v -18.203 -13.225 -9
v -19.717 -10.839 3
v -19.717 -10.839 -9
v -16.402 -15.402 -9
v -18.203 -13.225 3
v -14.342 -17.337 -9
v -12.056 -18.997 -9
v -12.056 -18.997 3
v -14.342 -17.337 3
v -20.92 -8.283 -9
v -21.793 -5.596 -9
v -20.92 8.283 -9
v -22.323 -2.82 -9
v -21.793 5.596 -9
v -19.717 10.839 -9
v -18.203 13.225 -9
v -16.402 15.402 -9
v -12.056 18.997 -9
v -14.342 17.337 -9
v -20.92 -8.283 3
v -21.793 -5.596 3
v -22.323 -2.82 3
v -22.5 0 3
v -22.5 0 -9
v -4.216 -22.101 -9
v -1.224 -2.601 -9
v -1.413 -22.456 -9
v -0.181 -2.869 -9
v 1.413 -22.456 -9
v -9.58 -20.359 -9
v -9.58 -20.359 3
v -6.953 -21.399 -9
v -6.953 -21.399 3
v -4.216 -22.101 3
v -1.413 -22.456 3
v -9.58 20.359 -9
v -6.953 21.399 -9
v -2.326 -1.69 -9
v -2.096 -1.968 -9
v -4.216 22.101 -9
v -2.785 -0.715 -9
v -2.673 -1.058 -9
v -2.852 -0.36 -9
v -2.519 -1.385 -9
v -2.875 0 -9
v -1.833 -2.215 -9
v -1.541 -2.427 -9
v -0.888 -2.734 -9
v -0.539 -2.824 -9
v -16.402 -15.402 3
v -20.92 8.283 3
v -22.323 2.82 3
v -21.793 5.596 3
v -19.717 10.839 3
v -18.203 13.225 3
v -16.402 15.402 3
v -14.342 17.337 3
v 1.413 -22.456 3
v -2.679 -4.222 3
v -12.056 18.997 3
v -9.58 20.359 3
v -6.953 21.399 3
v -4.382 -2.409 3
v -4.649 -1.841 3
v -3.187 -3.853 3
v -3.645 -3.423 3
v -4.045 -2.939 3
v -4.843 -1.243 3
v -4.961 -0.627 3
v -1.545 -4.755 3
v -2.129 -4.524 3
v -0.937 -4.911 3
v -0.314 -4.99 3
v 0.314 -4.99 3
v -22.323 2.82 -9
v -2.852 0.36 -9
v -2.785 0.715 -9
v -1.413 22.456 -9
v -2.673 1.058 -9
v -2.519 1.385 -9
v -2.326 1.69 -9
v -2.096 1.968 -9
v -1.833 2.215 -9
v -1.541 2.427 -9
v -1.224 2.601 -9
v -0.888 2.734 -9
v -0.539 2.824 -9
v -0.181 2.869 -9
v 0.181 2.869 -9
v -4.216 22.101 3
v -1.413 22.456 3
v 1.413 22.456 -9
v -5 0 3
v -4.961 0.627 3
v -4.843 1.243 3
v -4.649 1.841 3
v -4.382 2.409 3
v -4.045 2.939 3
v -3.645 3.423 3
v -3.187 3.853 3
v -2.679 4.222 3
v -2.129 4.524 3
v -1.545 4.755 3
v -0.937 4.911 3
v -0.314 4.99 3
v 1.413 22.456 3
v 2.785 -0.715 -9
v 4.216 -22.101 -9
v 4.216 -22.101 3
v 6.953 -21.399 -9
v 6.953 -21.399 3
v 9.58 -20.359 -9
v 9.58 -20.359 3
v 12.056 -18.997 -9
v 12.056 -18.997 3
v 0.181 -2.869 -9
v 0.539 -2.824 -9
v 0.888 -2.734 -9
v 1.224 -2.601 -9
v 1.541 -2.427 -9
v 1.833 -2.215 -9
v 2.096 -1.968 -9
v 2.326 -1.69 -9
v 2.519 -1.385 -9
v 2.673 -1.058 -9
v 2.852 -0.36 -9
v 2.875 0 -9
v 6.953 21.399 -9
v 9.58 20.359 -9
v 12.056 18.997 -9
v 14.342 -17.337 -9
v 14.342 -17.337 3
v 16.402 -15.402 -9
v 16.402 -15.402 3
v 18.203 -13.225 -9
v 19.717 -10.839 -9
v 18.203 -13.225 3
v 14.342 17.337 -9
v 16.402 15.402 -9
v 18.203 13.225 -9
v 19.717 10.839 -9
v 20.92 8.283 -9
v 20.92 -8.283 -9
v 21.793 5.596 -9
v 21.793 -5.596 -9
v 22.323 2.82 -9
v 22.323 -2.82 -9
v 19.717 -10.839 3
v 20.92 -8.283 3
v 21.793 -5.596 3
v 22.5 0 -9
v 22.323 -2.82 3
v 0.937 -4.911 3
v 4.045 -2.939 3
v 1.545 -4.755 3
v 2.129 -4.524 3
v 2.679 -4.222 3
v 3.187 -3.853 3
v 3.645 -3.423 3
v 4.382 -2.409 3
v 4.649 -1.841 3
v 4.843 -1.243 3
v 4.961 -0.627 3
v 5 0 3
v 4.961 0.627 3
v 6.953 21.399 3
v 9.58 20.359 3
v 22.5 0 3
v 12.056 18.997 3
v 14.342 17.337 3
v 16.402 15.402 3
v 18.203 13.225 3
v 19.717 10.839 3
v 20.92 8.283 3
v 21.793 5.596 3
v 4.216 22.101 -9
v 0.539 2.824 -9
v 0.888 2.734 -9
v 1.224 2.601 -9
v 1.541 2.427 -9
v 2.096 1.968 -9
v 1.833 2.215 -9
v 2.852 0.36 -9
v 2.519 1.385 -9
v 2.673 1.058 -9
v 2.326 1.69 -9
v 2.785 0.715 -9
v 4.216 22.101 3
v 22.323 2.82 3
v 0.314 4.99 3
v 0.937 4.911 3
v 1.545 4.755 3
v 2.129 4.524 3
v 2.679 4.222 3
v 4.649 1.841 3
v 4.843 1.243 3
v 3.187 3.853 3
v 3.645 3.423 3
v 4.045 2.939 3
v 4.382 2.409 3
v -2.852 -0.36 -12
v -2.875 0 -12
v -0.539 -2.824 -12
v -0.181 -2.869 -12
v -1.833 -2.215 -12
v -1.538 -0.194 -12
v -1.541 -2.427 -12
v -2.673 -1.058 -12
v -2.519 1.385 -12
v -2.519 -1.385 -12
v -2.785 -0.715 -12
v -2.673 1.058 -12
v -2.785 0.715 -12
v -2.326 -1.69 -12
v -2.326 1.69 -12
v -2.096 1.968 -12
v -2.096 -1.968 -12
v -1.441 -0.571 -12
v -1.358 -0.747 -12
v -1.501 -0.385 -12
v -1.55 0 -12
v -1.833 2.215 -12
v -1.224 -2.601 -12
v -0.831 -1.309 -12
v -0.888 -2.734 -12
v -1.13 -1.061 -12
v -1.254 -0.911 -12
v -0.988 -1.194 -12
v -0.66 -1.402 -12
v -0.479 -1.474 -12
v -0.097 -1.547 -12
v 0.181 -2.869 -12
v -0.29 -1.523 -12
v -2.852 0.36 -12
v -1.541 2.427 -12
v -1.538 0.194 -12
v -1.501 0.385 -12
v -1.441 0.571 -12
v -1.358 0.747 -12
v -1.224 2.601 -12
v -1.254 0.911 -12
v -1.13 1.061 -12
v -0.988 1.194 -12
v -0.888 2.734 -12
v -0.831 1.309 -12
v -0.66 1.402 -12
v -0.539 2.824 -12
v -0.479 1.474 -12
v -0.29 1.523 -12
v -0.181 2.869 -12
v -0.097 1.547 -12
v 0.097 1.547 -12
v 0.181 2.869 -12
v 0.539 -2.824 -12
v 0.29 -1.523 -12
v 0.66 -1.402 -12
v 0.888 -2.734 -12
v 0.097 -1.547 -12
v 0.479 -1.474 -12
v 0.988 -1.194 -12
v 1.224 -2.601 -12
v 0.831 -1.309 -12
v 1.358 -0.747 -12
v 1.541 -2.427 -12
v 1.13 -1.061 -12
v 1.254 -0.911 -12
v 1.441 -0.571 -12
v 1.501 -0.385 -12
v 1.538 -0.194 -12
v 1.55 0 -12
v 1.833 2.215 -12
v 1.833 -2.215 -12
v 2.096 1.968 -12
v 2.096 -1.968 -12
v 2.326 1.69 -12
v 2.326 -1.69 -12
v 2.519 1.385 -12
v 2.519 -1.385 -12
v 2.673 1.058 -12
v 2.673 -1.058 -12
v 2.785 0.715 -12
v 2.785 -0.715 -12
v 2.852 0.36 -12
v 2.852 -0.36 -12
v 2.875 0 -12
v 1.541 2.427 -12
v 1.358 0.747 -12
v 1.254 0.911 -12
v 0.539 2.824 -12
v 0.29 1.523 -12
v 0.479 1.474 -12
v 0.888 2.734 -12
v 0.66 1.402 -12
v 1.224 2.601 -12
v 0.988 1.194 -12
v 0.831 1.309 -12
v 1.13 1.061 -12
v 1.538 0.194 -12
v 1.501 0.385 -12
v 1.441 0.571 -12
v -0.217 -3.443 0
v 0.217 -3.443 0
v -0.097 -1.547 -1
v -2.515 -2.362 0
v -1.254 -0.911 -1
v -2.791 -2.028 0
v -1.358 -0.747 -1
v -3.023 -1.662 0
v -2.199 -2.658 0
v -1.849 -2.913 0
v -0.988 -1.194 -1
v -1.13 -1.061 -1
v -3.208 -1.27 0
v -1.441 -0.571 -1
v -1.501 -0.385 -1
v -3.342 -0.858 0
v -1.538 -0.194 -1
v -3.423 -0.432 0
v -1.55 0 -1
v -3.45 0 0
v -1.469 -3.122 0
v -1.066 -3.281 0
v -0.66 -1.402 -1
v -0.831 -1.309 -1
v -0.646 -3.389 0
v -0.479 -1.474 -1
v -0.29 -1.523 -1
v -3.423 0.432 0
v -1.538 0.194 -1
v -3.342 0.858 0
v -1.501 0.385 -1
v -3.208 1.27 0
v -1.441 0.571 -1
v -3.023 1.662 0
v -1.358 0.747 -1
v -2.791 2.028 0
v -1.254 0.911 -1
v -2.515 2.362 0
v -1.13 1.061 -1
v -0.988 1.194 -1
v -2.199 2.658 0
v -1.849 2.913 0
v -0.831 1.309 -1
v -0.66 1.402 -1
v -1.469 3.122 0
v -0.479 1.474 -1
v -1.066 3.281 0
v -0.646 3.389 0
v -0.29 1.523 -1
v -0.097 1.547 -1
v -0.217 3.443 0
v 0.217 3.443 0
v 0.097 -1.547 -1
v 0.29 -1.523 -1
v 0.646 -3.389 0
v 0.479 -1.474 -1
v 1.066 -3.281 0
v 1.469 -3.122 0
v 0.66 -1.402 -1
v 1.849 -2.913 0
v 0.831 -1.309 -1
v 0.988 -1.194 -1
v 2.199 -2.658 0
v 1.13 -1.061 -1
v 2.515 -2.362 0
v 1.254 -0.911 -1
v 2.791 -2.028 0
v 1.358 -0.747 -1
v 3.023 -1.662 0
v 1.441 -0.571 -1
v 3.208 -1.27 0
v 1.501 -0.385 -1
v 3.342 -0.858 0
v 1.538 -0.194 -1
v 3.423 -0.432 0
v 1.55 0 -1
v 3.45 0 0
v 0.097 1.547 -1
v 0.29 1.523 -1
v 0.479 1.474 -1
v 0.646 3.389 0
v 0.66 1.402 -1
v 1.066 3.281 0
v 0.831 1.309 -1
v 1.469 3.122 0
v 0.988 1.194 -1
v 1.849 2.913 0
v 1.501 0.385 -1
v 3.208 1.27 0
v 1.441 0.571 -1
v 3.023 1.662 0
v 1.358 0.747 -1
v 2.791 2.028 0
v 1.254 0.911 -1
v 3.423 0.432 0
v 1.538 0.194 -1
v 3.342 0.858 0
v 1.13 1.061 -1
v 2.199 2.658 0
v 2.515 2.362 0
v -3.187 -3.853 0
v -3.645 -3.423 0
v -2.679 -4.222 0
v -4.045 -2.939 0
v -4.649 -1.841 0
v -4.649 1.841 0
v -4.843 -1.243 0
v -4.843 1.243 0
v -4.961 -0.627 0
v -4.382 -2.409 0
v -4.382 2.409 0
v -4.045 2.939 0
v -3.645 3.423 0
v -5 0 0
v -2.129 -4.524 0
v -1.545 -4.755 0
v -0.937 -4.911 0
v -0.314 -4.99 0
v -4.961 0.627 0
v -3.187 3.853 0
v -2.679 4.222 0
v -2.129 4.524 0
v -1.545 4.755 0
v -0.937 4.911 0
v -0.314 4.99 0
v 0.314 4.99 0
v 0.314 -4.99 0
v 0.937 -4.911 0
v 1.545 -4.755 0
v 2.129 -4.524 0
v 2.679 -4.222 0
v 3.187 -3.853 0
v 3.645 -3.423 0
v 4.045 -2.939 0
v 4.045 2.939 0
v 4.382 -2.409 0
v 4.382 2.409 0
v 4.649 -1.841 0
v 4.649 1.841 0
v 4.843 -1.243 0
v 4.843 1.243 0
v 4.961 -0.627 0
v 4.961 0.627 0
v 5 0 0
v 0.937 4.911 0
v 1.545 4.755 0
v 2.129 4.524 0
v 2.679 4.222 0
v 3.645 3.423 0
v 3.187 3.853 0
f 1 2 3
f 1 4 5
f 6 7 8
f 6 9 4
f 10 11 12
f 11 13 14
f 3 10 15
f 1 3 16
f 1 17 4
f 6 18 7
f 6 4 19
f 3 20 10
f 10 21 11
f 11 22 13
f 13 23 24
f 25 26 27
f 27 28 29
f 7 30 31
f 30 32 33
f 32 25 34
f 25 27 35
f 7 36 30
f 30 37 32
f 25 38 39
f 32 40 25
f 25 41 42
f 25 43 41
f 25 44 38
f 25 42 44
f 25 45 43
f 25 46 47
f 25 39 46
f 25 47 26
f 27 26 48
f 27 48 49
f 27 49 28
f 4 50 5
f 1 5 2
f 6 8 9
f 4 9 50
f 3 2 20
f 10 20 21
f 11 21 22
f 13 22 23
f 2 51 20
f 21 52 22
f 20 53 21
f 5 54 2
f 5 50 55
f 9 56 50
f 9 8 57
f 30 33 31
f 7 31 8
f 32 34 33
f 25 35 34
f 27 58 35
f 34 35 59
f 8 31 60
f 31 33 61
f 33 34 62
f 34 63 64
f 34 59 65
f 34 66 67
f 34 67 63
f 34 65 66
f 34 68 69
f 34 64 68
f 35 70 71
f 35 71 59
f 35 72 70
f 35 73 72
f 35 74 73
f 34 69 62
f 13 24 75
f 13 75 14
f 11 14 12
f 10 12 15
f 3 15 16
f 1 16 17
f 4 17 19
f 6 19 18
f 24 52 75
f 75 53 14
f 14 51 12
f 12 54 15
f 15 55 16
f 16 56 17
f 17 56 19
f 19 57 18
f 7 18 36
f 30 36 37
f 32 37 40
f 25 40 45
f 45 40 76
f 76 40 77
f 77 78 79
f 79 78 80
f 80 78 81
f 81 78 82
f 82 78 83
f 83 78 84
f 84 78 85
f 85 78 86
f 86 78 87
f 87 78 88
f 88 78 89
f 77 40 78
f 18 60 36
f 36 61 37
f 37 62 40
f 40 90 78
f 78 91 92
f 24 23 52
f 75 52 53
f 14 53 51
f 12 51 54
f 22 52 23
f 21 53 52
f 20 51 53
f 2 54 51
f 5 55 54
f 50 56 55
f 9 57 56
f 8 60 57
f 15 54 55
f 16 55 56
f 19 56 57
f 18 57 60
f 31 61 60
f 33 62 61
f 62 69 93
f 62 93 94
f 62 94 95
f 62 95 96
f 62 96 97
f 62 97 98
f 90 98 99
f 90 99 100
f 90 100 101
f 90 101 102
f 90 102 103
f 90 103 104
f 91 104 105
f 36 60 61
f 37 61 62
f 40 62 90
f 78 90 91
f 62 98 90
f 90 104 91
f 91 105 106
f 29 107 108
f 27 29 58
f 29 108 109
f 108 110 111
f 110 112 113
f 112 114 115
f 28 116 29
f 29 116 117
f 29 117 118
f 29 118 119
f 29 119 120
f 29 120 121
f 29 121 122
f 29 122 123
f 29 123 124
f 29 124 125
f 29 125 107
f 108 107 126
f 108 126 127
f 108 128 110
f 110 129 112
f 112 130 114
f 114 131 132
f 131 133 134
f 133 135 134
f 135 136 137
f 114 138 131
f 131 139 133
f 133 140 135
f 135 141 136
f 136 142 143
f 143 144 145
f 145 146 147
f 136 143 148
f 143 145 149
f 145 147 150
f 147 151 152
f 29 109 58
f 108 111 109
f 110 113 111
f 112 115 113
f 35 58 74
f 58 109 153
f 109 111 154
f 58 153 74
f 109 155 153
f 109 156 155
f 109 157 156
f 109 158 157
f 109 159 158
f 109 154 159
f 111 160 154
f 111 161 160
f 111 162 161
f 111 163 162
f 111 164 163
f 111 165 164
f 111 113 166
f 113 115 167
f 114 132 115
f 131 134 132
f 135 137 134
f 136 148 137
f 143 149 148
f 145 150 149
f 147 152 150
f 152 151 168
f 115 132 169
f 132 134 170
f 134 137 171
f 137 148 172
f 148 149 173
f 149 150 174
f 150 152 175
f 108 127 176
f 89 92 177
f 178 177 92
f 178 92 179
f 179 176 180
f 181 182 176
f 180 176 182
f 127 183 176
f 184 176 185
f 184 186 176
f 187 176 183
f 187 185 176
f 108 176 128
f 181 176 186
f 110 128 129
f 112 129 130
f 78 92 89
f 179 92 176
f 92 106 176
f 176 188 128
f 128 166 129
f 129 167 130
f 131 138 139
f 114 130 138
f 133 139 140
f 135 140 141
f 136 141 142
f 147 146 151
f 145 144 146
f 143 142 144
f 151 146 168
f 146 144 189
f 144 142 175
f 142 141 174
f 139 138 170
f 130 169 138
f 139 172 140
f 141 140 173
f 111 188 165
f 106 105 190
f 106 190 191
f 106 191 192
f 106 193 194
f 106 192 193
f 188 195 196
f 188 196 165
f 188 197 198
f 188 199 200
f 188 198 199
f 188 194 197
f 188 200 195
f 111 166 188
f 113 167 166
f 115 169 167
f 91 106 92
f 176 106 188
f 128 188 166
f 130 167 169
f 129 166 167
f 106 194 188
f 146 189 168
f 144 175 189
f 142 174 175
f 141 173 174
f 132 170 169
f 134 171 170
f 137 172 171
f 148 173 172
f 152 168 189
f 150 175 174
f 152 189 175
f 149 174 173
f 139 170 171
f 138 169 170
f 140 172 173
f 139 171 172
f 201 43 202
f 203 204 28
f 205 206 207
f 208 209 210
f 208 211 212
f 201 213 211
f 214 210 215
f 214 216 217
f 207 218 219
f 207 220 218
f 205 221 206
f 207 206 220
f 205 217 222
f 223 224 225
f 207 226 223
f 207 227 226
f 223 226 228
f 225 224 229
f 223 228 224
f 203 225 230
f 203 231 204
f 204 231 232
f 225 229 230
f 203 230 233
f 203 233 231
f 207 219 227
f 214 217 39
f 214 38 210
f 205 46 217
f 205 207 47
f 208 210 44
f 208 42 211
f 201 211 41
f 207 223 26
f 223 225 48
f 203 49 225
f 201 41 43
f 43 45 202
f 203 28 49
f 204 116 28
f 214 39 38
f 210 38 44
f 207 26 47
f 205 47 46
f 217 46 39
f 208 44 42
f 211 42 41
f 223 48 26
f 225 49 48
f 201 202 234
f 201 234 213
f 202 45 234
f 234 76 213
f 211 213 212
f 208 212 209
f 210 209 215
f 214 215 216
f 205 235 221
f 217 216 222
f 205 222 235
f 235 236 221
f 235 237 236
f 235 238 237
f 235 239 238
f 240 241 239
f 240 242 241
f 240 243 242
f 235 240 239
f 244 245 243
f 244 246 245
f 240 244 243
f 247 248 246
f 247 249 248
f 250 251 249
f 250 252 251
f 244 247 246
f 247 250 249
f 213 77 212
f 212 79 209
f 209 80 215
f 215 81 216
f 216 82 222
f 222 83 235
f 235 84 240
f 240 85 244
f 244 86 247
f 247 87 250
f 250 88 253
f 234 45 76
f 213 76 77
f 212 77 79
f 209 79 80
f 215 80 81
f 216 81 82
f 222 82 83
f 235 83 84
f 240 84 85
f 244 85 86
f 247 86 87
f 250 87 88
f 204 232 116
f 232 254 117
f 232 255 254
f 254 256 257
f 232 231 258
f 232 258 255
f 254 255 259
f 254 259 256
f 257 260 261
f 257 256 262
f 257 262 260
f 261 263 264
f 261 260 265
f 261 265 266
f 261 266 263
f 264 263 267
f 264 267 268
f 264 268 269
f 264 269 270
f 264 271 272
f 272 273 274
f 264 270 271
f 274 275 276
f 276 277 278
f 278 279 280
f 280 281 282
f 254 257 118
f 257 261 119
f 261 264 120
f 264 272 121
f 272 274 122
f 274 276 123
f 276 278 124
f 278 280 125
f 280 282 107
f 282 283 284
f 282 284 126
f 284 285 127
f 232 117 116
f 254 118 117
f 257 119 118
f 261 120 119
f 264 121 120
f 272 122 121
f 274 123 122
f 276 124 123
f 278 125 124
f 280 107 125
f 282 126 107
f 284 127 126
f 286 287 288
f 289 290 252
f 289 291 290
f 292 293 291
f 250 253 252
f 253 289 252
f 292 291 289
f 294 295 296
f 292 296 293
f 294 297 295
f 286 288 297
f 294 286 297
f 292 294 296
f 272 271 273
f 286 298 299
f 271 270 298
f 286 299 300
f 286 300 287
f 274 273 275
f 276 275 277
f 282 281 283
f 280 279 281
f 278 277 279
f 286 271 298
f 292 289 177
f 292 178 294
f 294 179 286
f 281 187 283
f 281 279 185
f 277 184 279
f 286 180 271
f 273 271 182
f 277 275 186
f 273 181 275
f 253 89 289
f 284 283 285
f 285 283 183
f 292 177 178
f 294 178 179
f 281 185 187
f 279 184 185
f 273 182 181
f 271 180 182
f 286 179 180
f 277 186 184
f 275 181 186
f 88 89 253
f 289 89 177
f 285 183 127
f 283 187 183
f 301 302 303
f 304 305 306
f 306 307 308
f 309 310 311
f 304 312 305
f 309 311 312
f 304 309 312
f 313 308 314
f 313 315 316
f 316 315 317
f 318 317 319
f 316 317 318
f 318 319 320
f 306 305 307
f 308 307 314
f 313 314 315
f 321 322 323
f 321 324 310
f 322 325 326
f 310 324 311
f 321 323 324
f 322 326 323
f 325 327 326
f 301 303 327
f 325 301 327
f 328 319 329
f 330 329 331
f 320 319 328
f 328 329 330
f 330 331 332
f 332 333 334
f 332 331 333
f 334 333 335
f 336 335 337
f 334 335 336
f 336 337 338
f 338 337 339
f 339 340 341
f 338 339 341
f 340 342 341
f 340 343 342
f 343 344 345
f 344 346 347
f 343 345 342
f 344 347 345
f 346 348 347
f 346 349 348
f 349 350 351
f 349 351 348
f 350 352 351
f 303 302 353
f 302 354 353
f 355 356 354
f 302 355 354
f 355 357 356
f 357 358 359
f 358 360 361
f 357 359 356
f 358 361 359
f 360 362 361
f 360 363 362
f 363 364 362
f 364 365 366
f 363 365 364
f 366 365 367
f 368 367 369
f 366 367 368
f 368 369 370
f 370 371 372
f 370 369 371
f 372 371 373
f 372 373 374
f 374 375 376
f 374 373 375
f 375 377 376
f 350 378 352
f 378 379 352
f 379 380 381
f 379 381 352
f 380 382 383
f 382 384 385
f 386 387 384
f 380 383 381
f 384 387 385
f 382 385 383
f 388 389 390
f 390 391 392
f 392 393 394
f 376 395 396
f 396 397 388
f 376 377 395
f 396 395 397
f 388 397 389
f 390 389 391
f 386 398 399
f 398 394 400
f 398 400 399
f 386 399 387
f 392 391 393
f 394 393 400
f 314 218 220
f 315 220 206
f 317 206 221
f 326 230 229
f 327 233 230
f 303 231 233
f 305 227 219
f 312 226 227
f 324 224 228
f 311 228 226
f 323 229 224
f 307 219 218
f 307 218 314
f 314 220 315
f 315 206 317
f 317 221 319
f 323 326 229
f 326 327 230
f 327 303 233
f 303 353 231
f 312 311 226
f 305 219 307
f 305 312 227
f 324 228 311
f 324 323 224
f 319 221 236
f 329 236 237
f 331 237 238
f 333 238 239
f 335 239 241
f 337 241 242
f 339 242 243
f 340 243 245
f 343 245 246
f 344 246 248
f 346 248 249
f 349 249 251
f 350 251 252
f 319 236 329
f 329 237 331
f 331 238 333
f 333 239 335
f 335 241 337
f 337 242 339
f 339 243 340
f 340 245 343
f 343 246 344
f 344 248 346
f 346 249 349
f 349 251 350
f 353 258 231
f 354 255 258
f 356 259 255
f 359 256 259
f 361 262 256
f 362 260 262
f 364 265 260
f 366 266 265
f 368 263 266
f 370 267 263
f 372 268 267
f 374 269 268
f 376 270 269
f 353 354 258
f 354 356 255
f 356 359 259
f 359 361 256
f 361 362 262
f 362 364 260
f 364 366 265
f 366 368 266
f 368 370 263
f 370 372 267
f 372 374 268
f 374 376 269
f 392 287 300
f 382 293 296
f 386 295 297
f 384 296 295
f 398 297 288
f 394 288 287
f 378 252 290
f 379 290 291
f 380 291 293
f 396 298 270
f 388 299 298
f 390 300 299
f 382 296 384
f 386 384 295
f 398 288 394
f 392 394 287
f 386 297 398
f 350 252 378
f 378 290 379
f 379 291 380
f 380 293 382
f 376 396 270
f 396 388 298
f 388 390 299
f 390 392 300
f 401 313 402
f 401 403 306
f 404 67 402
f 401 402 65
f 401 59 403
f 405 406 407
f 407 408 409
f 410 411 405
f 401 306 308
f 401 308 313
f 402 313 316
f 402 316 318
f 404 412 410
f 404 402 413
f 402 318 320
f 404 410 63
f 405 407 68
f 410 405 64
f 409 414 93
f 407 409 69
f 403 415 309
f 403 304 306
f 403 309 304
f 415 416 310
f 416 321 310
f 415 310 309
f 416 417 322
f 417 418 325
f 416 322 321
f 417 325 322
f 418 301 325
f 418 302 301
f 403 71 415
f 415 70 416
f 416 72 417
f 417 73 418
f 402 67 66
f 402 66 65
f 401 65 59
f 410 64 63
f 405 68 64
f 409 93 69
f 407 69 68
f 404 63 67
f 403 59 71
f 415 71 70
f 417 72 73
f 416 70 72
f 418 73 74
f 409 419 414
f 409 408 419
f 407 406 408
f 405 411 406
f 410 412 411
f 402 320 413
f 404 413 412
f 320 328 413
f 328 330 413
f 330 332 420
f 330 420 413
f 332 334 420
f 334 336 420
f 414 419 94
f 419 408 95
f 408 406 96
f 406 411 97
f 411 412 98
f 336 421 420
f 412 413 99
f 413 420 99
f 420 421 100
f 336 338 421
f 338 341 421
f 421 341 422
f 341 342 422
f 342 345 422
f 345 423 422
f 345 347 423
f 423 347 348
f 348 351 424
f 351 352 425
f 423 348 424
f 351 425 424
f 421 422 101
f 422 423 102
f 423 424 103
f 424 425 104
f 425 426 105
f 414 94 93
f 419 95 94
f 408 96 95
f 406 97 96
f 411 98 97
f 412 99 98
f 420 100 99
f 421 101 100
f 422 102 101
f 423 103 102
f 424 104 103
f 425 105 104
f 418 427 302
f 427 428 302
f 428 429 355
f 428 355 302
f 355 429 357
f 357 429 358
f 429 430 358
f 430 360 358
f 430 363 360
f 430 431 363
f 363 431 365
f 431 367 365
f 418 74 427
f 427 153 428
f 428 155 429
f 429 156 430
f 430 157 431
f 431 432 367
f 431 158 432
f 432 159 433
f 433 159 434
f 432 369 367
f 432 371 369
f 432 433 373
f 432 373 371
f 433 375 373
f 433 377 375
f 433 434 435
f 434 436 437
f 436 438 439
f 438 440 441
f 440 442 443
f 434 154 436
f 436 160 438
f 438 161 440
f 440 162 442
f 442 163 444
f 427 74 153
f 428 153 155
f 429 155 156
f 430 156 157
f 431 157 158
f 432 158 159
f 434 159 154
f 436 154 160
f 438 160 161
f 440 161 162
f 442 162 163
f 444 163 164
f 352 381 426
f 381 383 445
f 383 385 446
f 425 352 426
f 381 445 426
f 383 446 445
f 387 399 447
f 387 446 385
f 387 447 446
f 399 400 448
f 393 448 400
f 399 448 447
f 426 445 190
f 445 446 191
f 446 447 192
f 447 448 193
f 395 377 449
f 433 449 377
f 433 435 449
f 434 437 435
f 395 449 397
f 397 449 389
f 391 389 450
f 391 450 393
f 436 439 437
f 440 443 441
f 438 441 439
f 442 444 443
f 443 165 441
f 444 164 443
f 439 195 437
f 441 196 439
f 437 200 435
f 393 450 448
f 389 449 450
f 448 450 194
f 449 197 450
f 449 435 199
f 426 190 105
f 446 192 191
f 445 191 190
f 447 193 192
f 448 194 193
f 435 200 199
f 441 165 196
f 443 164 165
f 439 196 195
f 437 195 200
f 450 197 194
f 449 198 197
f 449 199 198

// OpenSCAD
$fn = 50;

difference() {
	union() {
		translate(v = [0, 0, -9.0]) {
			cylinder(h = 12, r = 22.5);
		}
		#translate(v = [0, 0, -12.0]) {
			cylinder(h = 12, r = 2.875);
		}
	}
	union() {
		translate(v = [0, 0, 0]) {
			rotate(a = [0, 0, 0]) {
				difference() {
					union() {
						translate(v = [0, 0, -12.0]) {
							cylinder(h = 12, r = 1.25);
						}
						translate(v = [0, 0, -1.0]) {
							cylinder(h = 1.0, r1 = 1.55, r2 = 3.45);
						}
						translate(v = [0, 0, -12.0]) {
							cylinder(h = 12, r = 1.55);
						}
						translate(v = [0, 0, -12.0]) {
							cylinder(h = 12, r = 1.25);
						}
					}
					union();
				}
			}
		}
		#cylinder(h = 3, r = 5.0);
	}
}
